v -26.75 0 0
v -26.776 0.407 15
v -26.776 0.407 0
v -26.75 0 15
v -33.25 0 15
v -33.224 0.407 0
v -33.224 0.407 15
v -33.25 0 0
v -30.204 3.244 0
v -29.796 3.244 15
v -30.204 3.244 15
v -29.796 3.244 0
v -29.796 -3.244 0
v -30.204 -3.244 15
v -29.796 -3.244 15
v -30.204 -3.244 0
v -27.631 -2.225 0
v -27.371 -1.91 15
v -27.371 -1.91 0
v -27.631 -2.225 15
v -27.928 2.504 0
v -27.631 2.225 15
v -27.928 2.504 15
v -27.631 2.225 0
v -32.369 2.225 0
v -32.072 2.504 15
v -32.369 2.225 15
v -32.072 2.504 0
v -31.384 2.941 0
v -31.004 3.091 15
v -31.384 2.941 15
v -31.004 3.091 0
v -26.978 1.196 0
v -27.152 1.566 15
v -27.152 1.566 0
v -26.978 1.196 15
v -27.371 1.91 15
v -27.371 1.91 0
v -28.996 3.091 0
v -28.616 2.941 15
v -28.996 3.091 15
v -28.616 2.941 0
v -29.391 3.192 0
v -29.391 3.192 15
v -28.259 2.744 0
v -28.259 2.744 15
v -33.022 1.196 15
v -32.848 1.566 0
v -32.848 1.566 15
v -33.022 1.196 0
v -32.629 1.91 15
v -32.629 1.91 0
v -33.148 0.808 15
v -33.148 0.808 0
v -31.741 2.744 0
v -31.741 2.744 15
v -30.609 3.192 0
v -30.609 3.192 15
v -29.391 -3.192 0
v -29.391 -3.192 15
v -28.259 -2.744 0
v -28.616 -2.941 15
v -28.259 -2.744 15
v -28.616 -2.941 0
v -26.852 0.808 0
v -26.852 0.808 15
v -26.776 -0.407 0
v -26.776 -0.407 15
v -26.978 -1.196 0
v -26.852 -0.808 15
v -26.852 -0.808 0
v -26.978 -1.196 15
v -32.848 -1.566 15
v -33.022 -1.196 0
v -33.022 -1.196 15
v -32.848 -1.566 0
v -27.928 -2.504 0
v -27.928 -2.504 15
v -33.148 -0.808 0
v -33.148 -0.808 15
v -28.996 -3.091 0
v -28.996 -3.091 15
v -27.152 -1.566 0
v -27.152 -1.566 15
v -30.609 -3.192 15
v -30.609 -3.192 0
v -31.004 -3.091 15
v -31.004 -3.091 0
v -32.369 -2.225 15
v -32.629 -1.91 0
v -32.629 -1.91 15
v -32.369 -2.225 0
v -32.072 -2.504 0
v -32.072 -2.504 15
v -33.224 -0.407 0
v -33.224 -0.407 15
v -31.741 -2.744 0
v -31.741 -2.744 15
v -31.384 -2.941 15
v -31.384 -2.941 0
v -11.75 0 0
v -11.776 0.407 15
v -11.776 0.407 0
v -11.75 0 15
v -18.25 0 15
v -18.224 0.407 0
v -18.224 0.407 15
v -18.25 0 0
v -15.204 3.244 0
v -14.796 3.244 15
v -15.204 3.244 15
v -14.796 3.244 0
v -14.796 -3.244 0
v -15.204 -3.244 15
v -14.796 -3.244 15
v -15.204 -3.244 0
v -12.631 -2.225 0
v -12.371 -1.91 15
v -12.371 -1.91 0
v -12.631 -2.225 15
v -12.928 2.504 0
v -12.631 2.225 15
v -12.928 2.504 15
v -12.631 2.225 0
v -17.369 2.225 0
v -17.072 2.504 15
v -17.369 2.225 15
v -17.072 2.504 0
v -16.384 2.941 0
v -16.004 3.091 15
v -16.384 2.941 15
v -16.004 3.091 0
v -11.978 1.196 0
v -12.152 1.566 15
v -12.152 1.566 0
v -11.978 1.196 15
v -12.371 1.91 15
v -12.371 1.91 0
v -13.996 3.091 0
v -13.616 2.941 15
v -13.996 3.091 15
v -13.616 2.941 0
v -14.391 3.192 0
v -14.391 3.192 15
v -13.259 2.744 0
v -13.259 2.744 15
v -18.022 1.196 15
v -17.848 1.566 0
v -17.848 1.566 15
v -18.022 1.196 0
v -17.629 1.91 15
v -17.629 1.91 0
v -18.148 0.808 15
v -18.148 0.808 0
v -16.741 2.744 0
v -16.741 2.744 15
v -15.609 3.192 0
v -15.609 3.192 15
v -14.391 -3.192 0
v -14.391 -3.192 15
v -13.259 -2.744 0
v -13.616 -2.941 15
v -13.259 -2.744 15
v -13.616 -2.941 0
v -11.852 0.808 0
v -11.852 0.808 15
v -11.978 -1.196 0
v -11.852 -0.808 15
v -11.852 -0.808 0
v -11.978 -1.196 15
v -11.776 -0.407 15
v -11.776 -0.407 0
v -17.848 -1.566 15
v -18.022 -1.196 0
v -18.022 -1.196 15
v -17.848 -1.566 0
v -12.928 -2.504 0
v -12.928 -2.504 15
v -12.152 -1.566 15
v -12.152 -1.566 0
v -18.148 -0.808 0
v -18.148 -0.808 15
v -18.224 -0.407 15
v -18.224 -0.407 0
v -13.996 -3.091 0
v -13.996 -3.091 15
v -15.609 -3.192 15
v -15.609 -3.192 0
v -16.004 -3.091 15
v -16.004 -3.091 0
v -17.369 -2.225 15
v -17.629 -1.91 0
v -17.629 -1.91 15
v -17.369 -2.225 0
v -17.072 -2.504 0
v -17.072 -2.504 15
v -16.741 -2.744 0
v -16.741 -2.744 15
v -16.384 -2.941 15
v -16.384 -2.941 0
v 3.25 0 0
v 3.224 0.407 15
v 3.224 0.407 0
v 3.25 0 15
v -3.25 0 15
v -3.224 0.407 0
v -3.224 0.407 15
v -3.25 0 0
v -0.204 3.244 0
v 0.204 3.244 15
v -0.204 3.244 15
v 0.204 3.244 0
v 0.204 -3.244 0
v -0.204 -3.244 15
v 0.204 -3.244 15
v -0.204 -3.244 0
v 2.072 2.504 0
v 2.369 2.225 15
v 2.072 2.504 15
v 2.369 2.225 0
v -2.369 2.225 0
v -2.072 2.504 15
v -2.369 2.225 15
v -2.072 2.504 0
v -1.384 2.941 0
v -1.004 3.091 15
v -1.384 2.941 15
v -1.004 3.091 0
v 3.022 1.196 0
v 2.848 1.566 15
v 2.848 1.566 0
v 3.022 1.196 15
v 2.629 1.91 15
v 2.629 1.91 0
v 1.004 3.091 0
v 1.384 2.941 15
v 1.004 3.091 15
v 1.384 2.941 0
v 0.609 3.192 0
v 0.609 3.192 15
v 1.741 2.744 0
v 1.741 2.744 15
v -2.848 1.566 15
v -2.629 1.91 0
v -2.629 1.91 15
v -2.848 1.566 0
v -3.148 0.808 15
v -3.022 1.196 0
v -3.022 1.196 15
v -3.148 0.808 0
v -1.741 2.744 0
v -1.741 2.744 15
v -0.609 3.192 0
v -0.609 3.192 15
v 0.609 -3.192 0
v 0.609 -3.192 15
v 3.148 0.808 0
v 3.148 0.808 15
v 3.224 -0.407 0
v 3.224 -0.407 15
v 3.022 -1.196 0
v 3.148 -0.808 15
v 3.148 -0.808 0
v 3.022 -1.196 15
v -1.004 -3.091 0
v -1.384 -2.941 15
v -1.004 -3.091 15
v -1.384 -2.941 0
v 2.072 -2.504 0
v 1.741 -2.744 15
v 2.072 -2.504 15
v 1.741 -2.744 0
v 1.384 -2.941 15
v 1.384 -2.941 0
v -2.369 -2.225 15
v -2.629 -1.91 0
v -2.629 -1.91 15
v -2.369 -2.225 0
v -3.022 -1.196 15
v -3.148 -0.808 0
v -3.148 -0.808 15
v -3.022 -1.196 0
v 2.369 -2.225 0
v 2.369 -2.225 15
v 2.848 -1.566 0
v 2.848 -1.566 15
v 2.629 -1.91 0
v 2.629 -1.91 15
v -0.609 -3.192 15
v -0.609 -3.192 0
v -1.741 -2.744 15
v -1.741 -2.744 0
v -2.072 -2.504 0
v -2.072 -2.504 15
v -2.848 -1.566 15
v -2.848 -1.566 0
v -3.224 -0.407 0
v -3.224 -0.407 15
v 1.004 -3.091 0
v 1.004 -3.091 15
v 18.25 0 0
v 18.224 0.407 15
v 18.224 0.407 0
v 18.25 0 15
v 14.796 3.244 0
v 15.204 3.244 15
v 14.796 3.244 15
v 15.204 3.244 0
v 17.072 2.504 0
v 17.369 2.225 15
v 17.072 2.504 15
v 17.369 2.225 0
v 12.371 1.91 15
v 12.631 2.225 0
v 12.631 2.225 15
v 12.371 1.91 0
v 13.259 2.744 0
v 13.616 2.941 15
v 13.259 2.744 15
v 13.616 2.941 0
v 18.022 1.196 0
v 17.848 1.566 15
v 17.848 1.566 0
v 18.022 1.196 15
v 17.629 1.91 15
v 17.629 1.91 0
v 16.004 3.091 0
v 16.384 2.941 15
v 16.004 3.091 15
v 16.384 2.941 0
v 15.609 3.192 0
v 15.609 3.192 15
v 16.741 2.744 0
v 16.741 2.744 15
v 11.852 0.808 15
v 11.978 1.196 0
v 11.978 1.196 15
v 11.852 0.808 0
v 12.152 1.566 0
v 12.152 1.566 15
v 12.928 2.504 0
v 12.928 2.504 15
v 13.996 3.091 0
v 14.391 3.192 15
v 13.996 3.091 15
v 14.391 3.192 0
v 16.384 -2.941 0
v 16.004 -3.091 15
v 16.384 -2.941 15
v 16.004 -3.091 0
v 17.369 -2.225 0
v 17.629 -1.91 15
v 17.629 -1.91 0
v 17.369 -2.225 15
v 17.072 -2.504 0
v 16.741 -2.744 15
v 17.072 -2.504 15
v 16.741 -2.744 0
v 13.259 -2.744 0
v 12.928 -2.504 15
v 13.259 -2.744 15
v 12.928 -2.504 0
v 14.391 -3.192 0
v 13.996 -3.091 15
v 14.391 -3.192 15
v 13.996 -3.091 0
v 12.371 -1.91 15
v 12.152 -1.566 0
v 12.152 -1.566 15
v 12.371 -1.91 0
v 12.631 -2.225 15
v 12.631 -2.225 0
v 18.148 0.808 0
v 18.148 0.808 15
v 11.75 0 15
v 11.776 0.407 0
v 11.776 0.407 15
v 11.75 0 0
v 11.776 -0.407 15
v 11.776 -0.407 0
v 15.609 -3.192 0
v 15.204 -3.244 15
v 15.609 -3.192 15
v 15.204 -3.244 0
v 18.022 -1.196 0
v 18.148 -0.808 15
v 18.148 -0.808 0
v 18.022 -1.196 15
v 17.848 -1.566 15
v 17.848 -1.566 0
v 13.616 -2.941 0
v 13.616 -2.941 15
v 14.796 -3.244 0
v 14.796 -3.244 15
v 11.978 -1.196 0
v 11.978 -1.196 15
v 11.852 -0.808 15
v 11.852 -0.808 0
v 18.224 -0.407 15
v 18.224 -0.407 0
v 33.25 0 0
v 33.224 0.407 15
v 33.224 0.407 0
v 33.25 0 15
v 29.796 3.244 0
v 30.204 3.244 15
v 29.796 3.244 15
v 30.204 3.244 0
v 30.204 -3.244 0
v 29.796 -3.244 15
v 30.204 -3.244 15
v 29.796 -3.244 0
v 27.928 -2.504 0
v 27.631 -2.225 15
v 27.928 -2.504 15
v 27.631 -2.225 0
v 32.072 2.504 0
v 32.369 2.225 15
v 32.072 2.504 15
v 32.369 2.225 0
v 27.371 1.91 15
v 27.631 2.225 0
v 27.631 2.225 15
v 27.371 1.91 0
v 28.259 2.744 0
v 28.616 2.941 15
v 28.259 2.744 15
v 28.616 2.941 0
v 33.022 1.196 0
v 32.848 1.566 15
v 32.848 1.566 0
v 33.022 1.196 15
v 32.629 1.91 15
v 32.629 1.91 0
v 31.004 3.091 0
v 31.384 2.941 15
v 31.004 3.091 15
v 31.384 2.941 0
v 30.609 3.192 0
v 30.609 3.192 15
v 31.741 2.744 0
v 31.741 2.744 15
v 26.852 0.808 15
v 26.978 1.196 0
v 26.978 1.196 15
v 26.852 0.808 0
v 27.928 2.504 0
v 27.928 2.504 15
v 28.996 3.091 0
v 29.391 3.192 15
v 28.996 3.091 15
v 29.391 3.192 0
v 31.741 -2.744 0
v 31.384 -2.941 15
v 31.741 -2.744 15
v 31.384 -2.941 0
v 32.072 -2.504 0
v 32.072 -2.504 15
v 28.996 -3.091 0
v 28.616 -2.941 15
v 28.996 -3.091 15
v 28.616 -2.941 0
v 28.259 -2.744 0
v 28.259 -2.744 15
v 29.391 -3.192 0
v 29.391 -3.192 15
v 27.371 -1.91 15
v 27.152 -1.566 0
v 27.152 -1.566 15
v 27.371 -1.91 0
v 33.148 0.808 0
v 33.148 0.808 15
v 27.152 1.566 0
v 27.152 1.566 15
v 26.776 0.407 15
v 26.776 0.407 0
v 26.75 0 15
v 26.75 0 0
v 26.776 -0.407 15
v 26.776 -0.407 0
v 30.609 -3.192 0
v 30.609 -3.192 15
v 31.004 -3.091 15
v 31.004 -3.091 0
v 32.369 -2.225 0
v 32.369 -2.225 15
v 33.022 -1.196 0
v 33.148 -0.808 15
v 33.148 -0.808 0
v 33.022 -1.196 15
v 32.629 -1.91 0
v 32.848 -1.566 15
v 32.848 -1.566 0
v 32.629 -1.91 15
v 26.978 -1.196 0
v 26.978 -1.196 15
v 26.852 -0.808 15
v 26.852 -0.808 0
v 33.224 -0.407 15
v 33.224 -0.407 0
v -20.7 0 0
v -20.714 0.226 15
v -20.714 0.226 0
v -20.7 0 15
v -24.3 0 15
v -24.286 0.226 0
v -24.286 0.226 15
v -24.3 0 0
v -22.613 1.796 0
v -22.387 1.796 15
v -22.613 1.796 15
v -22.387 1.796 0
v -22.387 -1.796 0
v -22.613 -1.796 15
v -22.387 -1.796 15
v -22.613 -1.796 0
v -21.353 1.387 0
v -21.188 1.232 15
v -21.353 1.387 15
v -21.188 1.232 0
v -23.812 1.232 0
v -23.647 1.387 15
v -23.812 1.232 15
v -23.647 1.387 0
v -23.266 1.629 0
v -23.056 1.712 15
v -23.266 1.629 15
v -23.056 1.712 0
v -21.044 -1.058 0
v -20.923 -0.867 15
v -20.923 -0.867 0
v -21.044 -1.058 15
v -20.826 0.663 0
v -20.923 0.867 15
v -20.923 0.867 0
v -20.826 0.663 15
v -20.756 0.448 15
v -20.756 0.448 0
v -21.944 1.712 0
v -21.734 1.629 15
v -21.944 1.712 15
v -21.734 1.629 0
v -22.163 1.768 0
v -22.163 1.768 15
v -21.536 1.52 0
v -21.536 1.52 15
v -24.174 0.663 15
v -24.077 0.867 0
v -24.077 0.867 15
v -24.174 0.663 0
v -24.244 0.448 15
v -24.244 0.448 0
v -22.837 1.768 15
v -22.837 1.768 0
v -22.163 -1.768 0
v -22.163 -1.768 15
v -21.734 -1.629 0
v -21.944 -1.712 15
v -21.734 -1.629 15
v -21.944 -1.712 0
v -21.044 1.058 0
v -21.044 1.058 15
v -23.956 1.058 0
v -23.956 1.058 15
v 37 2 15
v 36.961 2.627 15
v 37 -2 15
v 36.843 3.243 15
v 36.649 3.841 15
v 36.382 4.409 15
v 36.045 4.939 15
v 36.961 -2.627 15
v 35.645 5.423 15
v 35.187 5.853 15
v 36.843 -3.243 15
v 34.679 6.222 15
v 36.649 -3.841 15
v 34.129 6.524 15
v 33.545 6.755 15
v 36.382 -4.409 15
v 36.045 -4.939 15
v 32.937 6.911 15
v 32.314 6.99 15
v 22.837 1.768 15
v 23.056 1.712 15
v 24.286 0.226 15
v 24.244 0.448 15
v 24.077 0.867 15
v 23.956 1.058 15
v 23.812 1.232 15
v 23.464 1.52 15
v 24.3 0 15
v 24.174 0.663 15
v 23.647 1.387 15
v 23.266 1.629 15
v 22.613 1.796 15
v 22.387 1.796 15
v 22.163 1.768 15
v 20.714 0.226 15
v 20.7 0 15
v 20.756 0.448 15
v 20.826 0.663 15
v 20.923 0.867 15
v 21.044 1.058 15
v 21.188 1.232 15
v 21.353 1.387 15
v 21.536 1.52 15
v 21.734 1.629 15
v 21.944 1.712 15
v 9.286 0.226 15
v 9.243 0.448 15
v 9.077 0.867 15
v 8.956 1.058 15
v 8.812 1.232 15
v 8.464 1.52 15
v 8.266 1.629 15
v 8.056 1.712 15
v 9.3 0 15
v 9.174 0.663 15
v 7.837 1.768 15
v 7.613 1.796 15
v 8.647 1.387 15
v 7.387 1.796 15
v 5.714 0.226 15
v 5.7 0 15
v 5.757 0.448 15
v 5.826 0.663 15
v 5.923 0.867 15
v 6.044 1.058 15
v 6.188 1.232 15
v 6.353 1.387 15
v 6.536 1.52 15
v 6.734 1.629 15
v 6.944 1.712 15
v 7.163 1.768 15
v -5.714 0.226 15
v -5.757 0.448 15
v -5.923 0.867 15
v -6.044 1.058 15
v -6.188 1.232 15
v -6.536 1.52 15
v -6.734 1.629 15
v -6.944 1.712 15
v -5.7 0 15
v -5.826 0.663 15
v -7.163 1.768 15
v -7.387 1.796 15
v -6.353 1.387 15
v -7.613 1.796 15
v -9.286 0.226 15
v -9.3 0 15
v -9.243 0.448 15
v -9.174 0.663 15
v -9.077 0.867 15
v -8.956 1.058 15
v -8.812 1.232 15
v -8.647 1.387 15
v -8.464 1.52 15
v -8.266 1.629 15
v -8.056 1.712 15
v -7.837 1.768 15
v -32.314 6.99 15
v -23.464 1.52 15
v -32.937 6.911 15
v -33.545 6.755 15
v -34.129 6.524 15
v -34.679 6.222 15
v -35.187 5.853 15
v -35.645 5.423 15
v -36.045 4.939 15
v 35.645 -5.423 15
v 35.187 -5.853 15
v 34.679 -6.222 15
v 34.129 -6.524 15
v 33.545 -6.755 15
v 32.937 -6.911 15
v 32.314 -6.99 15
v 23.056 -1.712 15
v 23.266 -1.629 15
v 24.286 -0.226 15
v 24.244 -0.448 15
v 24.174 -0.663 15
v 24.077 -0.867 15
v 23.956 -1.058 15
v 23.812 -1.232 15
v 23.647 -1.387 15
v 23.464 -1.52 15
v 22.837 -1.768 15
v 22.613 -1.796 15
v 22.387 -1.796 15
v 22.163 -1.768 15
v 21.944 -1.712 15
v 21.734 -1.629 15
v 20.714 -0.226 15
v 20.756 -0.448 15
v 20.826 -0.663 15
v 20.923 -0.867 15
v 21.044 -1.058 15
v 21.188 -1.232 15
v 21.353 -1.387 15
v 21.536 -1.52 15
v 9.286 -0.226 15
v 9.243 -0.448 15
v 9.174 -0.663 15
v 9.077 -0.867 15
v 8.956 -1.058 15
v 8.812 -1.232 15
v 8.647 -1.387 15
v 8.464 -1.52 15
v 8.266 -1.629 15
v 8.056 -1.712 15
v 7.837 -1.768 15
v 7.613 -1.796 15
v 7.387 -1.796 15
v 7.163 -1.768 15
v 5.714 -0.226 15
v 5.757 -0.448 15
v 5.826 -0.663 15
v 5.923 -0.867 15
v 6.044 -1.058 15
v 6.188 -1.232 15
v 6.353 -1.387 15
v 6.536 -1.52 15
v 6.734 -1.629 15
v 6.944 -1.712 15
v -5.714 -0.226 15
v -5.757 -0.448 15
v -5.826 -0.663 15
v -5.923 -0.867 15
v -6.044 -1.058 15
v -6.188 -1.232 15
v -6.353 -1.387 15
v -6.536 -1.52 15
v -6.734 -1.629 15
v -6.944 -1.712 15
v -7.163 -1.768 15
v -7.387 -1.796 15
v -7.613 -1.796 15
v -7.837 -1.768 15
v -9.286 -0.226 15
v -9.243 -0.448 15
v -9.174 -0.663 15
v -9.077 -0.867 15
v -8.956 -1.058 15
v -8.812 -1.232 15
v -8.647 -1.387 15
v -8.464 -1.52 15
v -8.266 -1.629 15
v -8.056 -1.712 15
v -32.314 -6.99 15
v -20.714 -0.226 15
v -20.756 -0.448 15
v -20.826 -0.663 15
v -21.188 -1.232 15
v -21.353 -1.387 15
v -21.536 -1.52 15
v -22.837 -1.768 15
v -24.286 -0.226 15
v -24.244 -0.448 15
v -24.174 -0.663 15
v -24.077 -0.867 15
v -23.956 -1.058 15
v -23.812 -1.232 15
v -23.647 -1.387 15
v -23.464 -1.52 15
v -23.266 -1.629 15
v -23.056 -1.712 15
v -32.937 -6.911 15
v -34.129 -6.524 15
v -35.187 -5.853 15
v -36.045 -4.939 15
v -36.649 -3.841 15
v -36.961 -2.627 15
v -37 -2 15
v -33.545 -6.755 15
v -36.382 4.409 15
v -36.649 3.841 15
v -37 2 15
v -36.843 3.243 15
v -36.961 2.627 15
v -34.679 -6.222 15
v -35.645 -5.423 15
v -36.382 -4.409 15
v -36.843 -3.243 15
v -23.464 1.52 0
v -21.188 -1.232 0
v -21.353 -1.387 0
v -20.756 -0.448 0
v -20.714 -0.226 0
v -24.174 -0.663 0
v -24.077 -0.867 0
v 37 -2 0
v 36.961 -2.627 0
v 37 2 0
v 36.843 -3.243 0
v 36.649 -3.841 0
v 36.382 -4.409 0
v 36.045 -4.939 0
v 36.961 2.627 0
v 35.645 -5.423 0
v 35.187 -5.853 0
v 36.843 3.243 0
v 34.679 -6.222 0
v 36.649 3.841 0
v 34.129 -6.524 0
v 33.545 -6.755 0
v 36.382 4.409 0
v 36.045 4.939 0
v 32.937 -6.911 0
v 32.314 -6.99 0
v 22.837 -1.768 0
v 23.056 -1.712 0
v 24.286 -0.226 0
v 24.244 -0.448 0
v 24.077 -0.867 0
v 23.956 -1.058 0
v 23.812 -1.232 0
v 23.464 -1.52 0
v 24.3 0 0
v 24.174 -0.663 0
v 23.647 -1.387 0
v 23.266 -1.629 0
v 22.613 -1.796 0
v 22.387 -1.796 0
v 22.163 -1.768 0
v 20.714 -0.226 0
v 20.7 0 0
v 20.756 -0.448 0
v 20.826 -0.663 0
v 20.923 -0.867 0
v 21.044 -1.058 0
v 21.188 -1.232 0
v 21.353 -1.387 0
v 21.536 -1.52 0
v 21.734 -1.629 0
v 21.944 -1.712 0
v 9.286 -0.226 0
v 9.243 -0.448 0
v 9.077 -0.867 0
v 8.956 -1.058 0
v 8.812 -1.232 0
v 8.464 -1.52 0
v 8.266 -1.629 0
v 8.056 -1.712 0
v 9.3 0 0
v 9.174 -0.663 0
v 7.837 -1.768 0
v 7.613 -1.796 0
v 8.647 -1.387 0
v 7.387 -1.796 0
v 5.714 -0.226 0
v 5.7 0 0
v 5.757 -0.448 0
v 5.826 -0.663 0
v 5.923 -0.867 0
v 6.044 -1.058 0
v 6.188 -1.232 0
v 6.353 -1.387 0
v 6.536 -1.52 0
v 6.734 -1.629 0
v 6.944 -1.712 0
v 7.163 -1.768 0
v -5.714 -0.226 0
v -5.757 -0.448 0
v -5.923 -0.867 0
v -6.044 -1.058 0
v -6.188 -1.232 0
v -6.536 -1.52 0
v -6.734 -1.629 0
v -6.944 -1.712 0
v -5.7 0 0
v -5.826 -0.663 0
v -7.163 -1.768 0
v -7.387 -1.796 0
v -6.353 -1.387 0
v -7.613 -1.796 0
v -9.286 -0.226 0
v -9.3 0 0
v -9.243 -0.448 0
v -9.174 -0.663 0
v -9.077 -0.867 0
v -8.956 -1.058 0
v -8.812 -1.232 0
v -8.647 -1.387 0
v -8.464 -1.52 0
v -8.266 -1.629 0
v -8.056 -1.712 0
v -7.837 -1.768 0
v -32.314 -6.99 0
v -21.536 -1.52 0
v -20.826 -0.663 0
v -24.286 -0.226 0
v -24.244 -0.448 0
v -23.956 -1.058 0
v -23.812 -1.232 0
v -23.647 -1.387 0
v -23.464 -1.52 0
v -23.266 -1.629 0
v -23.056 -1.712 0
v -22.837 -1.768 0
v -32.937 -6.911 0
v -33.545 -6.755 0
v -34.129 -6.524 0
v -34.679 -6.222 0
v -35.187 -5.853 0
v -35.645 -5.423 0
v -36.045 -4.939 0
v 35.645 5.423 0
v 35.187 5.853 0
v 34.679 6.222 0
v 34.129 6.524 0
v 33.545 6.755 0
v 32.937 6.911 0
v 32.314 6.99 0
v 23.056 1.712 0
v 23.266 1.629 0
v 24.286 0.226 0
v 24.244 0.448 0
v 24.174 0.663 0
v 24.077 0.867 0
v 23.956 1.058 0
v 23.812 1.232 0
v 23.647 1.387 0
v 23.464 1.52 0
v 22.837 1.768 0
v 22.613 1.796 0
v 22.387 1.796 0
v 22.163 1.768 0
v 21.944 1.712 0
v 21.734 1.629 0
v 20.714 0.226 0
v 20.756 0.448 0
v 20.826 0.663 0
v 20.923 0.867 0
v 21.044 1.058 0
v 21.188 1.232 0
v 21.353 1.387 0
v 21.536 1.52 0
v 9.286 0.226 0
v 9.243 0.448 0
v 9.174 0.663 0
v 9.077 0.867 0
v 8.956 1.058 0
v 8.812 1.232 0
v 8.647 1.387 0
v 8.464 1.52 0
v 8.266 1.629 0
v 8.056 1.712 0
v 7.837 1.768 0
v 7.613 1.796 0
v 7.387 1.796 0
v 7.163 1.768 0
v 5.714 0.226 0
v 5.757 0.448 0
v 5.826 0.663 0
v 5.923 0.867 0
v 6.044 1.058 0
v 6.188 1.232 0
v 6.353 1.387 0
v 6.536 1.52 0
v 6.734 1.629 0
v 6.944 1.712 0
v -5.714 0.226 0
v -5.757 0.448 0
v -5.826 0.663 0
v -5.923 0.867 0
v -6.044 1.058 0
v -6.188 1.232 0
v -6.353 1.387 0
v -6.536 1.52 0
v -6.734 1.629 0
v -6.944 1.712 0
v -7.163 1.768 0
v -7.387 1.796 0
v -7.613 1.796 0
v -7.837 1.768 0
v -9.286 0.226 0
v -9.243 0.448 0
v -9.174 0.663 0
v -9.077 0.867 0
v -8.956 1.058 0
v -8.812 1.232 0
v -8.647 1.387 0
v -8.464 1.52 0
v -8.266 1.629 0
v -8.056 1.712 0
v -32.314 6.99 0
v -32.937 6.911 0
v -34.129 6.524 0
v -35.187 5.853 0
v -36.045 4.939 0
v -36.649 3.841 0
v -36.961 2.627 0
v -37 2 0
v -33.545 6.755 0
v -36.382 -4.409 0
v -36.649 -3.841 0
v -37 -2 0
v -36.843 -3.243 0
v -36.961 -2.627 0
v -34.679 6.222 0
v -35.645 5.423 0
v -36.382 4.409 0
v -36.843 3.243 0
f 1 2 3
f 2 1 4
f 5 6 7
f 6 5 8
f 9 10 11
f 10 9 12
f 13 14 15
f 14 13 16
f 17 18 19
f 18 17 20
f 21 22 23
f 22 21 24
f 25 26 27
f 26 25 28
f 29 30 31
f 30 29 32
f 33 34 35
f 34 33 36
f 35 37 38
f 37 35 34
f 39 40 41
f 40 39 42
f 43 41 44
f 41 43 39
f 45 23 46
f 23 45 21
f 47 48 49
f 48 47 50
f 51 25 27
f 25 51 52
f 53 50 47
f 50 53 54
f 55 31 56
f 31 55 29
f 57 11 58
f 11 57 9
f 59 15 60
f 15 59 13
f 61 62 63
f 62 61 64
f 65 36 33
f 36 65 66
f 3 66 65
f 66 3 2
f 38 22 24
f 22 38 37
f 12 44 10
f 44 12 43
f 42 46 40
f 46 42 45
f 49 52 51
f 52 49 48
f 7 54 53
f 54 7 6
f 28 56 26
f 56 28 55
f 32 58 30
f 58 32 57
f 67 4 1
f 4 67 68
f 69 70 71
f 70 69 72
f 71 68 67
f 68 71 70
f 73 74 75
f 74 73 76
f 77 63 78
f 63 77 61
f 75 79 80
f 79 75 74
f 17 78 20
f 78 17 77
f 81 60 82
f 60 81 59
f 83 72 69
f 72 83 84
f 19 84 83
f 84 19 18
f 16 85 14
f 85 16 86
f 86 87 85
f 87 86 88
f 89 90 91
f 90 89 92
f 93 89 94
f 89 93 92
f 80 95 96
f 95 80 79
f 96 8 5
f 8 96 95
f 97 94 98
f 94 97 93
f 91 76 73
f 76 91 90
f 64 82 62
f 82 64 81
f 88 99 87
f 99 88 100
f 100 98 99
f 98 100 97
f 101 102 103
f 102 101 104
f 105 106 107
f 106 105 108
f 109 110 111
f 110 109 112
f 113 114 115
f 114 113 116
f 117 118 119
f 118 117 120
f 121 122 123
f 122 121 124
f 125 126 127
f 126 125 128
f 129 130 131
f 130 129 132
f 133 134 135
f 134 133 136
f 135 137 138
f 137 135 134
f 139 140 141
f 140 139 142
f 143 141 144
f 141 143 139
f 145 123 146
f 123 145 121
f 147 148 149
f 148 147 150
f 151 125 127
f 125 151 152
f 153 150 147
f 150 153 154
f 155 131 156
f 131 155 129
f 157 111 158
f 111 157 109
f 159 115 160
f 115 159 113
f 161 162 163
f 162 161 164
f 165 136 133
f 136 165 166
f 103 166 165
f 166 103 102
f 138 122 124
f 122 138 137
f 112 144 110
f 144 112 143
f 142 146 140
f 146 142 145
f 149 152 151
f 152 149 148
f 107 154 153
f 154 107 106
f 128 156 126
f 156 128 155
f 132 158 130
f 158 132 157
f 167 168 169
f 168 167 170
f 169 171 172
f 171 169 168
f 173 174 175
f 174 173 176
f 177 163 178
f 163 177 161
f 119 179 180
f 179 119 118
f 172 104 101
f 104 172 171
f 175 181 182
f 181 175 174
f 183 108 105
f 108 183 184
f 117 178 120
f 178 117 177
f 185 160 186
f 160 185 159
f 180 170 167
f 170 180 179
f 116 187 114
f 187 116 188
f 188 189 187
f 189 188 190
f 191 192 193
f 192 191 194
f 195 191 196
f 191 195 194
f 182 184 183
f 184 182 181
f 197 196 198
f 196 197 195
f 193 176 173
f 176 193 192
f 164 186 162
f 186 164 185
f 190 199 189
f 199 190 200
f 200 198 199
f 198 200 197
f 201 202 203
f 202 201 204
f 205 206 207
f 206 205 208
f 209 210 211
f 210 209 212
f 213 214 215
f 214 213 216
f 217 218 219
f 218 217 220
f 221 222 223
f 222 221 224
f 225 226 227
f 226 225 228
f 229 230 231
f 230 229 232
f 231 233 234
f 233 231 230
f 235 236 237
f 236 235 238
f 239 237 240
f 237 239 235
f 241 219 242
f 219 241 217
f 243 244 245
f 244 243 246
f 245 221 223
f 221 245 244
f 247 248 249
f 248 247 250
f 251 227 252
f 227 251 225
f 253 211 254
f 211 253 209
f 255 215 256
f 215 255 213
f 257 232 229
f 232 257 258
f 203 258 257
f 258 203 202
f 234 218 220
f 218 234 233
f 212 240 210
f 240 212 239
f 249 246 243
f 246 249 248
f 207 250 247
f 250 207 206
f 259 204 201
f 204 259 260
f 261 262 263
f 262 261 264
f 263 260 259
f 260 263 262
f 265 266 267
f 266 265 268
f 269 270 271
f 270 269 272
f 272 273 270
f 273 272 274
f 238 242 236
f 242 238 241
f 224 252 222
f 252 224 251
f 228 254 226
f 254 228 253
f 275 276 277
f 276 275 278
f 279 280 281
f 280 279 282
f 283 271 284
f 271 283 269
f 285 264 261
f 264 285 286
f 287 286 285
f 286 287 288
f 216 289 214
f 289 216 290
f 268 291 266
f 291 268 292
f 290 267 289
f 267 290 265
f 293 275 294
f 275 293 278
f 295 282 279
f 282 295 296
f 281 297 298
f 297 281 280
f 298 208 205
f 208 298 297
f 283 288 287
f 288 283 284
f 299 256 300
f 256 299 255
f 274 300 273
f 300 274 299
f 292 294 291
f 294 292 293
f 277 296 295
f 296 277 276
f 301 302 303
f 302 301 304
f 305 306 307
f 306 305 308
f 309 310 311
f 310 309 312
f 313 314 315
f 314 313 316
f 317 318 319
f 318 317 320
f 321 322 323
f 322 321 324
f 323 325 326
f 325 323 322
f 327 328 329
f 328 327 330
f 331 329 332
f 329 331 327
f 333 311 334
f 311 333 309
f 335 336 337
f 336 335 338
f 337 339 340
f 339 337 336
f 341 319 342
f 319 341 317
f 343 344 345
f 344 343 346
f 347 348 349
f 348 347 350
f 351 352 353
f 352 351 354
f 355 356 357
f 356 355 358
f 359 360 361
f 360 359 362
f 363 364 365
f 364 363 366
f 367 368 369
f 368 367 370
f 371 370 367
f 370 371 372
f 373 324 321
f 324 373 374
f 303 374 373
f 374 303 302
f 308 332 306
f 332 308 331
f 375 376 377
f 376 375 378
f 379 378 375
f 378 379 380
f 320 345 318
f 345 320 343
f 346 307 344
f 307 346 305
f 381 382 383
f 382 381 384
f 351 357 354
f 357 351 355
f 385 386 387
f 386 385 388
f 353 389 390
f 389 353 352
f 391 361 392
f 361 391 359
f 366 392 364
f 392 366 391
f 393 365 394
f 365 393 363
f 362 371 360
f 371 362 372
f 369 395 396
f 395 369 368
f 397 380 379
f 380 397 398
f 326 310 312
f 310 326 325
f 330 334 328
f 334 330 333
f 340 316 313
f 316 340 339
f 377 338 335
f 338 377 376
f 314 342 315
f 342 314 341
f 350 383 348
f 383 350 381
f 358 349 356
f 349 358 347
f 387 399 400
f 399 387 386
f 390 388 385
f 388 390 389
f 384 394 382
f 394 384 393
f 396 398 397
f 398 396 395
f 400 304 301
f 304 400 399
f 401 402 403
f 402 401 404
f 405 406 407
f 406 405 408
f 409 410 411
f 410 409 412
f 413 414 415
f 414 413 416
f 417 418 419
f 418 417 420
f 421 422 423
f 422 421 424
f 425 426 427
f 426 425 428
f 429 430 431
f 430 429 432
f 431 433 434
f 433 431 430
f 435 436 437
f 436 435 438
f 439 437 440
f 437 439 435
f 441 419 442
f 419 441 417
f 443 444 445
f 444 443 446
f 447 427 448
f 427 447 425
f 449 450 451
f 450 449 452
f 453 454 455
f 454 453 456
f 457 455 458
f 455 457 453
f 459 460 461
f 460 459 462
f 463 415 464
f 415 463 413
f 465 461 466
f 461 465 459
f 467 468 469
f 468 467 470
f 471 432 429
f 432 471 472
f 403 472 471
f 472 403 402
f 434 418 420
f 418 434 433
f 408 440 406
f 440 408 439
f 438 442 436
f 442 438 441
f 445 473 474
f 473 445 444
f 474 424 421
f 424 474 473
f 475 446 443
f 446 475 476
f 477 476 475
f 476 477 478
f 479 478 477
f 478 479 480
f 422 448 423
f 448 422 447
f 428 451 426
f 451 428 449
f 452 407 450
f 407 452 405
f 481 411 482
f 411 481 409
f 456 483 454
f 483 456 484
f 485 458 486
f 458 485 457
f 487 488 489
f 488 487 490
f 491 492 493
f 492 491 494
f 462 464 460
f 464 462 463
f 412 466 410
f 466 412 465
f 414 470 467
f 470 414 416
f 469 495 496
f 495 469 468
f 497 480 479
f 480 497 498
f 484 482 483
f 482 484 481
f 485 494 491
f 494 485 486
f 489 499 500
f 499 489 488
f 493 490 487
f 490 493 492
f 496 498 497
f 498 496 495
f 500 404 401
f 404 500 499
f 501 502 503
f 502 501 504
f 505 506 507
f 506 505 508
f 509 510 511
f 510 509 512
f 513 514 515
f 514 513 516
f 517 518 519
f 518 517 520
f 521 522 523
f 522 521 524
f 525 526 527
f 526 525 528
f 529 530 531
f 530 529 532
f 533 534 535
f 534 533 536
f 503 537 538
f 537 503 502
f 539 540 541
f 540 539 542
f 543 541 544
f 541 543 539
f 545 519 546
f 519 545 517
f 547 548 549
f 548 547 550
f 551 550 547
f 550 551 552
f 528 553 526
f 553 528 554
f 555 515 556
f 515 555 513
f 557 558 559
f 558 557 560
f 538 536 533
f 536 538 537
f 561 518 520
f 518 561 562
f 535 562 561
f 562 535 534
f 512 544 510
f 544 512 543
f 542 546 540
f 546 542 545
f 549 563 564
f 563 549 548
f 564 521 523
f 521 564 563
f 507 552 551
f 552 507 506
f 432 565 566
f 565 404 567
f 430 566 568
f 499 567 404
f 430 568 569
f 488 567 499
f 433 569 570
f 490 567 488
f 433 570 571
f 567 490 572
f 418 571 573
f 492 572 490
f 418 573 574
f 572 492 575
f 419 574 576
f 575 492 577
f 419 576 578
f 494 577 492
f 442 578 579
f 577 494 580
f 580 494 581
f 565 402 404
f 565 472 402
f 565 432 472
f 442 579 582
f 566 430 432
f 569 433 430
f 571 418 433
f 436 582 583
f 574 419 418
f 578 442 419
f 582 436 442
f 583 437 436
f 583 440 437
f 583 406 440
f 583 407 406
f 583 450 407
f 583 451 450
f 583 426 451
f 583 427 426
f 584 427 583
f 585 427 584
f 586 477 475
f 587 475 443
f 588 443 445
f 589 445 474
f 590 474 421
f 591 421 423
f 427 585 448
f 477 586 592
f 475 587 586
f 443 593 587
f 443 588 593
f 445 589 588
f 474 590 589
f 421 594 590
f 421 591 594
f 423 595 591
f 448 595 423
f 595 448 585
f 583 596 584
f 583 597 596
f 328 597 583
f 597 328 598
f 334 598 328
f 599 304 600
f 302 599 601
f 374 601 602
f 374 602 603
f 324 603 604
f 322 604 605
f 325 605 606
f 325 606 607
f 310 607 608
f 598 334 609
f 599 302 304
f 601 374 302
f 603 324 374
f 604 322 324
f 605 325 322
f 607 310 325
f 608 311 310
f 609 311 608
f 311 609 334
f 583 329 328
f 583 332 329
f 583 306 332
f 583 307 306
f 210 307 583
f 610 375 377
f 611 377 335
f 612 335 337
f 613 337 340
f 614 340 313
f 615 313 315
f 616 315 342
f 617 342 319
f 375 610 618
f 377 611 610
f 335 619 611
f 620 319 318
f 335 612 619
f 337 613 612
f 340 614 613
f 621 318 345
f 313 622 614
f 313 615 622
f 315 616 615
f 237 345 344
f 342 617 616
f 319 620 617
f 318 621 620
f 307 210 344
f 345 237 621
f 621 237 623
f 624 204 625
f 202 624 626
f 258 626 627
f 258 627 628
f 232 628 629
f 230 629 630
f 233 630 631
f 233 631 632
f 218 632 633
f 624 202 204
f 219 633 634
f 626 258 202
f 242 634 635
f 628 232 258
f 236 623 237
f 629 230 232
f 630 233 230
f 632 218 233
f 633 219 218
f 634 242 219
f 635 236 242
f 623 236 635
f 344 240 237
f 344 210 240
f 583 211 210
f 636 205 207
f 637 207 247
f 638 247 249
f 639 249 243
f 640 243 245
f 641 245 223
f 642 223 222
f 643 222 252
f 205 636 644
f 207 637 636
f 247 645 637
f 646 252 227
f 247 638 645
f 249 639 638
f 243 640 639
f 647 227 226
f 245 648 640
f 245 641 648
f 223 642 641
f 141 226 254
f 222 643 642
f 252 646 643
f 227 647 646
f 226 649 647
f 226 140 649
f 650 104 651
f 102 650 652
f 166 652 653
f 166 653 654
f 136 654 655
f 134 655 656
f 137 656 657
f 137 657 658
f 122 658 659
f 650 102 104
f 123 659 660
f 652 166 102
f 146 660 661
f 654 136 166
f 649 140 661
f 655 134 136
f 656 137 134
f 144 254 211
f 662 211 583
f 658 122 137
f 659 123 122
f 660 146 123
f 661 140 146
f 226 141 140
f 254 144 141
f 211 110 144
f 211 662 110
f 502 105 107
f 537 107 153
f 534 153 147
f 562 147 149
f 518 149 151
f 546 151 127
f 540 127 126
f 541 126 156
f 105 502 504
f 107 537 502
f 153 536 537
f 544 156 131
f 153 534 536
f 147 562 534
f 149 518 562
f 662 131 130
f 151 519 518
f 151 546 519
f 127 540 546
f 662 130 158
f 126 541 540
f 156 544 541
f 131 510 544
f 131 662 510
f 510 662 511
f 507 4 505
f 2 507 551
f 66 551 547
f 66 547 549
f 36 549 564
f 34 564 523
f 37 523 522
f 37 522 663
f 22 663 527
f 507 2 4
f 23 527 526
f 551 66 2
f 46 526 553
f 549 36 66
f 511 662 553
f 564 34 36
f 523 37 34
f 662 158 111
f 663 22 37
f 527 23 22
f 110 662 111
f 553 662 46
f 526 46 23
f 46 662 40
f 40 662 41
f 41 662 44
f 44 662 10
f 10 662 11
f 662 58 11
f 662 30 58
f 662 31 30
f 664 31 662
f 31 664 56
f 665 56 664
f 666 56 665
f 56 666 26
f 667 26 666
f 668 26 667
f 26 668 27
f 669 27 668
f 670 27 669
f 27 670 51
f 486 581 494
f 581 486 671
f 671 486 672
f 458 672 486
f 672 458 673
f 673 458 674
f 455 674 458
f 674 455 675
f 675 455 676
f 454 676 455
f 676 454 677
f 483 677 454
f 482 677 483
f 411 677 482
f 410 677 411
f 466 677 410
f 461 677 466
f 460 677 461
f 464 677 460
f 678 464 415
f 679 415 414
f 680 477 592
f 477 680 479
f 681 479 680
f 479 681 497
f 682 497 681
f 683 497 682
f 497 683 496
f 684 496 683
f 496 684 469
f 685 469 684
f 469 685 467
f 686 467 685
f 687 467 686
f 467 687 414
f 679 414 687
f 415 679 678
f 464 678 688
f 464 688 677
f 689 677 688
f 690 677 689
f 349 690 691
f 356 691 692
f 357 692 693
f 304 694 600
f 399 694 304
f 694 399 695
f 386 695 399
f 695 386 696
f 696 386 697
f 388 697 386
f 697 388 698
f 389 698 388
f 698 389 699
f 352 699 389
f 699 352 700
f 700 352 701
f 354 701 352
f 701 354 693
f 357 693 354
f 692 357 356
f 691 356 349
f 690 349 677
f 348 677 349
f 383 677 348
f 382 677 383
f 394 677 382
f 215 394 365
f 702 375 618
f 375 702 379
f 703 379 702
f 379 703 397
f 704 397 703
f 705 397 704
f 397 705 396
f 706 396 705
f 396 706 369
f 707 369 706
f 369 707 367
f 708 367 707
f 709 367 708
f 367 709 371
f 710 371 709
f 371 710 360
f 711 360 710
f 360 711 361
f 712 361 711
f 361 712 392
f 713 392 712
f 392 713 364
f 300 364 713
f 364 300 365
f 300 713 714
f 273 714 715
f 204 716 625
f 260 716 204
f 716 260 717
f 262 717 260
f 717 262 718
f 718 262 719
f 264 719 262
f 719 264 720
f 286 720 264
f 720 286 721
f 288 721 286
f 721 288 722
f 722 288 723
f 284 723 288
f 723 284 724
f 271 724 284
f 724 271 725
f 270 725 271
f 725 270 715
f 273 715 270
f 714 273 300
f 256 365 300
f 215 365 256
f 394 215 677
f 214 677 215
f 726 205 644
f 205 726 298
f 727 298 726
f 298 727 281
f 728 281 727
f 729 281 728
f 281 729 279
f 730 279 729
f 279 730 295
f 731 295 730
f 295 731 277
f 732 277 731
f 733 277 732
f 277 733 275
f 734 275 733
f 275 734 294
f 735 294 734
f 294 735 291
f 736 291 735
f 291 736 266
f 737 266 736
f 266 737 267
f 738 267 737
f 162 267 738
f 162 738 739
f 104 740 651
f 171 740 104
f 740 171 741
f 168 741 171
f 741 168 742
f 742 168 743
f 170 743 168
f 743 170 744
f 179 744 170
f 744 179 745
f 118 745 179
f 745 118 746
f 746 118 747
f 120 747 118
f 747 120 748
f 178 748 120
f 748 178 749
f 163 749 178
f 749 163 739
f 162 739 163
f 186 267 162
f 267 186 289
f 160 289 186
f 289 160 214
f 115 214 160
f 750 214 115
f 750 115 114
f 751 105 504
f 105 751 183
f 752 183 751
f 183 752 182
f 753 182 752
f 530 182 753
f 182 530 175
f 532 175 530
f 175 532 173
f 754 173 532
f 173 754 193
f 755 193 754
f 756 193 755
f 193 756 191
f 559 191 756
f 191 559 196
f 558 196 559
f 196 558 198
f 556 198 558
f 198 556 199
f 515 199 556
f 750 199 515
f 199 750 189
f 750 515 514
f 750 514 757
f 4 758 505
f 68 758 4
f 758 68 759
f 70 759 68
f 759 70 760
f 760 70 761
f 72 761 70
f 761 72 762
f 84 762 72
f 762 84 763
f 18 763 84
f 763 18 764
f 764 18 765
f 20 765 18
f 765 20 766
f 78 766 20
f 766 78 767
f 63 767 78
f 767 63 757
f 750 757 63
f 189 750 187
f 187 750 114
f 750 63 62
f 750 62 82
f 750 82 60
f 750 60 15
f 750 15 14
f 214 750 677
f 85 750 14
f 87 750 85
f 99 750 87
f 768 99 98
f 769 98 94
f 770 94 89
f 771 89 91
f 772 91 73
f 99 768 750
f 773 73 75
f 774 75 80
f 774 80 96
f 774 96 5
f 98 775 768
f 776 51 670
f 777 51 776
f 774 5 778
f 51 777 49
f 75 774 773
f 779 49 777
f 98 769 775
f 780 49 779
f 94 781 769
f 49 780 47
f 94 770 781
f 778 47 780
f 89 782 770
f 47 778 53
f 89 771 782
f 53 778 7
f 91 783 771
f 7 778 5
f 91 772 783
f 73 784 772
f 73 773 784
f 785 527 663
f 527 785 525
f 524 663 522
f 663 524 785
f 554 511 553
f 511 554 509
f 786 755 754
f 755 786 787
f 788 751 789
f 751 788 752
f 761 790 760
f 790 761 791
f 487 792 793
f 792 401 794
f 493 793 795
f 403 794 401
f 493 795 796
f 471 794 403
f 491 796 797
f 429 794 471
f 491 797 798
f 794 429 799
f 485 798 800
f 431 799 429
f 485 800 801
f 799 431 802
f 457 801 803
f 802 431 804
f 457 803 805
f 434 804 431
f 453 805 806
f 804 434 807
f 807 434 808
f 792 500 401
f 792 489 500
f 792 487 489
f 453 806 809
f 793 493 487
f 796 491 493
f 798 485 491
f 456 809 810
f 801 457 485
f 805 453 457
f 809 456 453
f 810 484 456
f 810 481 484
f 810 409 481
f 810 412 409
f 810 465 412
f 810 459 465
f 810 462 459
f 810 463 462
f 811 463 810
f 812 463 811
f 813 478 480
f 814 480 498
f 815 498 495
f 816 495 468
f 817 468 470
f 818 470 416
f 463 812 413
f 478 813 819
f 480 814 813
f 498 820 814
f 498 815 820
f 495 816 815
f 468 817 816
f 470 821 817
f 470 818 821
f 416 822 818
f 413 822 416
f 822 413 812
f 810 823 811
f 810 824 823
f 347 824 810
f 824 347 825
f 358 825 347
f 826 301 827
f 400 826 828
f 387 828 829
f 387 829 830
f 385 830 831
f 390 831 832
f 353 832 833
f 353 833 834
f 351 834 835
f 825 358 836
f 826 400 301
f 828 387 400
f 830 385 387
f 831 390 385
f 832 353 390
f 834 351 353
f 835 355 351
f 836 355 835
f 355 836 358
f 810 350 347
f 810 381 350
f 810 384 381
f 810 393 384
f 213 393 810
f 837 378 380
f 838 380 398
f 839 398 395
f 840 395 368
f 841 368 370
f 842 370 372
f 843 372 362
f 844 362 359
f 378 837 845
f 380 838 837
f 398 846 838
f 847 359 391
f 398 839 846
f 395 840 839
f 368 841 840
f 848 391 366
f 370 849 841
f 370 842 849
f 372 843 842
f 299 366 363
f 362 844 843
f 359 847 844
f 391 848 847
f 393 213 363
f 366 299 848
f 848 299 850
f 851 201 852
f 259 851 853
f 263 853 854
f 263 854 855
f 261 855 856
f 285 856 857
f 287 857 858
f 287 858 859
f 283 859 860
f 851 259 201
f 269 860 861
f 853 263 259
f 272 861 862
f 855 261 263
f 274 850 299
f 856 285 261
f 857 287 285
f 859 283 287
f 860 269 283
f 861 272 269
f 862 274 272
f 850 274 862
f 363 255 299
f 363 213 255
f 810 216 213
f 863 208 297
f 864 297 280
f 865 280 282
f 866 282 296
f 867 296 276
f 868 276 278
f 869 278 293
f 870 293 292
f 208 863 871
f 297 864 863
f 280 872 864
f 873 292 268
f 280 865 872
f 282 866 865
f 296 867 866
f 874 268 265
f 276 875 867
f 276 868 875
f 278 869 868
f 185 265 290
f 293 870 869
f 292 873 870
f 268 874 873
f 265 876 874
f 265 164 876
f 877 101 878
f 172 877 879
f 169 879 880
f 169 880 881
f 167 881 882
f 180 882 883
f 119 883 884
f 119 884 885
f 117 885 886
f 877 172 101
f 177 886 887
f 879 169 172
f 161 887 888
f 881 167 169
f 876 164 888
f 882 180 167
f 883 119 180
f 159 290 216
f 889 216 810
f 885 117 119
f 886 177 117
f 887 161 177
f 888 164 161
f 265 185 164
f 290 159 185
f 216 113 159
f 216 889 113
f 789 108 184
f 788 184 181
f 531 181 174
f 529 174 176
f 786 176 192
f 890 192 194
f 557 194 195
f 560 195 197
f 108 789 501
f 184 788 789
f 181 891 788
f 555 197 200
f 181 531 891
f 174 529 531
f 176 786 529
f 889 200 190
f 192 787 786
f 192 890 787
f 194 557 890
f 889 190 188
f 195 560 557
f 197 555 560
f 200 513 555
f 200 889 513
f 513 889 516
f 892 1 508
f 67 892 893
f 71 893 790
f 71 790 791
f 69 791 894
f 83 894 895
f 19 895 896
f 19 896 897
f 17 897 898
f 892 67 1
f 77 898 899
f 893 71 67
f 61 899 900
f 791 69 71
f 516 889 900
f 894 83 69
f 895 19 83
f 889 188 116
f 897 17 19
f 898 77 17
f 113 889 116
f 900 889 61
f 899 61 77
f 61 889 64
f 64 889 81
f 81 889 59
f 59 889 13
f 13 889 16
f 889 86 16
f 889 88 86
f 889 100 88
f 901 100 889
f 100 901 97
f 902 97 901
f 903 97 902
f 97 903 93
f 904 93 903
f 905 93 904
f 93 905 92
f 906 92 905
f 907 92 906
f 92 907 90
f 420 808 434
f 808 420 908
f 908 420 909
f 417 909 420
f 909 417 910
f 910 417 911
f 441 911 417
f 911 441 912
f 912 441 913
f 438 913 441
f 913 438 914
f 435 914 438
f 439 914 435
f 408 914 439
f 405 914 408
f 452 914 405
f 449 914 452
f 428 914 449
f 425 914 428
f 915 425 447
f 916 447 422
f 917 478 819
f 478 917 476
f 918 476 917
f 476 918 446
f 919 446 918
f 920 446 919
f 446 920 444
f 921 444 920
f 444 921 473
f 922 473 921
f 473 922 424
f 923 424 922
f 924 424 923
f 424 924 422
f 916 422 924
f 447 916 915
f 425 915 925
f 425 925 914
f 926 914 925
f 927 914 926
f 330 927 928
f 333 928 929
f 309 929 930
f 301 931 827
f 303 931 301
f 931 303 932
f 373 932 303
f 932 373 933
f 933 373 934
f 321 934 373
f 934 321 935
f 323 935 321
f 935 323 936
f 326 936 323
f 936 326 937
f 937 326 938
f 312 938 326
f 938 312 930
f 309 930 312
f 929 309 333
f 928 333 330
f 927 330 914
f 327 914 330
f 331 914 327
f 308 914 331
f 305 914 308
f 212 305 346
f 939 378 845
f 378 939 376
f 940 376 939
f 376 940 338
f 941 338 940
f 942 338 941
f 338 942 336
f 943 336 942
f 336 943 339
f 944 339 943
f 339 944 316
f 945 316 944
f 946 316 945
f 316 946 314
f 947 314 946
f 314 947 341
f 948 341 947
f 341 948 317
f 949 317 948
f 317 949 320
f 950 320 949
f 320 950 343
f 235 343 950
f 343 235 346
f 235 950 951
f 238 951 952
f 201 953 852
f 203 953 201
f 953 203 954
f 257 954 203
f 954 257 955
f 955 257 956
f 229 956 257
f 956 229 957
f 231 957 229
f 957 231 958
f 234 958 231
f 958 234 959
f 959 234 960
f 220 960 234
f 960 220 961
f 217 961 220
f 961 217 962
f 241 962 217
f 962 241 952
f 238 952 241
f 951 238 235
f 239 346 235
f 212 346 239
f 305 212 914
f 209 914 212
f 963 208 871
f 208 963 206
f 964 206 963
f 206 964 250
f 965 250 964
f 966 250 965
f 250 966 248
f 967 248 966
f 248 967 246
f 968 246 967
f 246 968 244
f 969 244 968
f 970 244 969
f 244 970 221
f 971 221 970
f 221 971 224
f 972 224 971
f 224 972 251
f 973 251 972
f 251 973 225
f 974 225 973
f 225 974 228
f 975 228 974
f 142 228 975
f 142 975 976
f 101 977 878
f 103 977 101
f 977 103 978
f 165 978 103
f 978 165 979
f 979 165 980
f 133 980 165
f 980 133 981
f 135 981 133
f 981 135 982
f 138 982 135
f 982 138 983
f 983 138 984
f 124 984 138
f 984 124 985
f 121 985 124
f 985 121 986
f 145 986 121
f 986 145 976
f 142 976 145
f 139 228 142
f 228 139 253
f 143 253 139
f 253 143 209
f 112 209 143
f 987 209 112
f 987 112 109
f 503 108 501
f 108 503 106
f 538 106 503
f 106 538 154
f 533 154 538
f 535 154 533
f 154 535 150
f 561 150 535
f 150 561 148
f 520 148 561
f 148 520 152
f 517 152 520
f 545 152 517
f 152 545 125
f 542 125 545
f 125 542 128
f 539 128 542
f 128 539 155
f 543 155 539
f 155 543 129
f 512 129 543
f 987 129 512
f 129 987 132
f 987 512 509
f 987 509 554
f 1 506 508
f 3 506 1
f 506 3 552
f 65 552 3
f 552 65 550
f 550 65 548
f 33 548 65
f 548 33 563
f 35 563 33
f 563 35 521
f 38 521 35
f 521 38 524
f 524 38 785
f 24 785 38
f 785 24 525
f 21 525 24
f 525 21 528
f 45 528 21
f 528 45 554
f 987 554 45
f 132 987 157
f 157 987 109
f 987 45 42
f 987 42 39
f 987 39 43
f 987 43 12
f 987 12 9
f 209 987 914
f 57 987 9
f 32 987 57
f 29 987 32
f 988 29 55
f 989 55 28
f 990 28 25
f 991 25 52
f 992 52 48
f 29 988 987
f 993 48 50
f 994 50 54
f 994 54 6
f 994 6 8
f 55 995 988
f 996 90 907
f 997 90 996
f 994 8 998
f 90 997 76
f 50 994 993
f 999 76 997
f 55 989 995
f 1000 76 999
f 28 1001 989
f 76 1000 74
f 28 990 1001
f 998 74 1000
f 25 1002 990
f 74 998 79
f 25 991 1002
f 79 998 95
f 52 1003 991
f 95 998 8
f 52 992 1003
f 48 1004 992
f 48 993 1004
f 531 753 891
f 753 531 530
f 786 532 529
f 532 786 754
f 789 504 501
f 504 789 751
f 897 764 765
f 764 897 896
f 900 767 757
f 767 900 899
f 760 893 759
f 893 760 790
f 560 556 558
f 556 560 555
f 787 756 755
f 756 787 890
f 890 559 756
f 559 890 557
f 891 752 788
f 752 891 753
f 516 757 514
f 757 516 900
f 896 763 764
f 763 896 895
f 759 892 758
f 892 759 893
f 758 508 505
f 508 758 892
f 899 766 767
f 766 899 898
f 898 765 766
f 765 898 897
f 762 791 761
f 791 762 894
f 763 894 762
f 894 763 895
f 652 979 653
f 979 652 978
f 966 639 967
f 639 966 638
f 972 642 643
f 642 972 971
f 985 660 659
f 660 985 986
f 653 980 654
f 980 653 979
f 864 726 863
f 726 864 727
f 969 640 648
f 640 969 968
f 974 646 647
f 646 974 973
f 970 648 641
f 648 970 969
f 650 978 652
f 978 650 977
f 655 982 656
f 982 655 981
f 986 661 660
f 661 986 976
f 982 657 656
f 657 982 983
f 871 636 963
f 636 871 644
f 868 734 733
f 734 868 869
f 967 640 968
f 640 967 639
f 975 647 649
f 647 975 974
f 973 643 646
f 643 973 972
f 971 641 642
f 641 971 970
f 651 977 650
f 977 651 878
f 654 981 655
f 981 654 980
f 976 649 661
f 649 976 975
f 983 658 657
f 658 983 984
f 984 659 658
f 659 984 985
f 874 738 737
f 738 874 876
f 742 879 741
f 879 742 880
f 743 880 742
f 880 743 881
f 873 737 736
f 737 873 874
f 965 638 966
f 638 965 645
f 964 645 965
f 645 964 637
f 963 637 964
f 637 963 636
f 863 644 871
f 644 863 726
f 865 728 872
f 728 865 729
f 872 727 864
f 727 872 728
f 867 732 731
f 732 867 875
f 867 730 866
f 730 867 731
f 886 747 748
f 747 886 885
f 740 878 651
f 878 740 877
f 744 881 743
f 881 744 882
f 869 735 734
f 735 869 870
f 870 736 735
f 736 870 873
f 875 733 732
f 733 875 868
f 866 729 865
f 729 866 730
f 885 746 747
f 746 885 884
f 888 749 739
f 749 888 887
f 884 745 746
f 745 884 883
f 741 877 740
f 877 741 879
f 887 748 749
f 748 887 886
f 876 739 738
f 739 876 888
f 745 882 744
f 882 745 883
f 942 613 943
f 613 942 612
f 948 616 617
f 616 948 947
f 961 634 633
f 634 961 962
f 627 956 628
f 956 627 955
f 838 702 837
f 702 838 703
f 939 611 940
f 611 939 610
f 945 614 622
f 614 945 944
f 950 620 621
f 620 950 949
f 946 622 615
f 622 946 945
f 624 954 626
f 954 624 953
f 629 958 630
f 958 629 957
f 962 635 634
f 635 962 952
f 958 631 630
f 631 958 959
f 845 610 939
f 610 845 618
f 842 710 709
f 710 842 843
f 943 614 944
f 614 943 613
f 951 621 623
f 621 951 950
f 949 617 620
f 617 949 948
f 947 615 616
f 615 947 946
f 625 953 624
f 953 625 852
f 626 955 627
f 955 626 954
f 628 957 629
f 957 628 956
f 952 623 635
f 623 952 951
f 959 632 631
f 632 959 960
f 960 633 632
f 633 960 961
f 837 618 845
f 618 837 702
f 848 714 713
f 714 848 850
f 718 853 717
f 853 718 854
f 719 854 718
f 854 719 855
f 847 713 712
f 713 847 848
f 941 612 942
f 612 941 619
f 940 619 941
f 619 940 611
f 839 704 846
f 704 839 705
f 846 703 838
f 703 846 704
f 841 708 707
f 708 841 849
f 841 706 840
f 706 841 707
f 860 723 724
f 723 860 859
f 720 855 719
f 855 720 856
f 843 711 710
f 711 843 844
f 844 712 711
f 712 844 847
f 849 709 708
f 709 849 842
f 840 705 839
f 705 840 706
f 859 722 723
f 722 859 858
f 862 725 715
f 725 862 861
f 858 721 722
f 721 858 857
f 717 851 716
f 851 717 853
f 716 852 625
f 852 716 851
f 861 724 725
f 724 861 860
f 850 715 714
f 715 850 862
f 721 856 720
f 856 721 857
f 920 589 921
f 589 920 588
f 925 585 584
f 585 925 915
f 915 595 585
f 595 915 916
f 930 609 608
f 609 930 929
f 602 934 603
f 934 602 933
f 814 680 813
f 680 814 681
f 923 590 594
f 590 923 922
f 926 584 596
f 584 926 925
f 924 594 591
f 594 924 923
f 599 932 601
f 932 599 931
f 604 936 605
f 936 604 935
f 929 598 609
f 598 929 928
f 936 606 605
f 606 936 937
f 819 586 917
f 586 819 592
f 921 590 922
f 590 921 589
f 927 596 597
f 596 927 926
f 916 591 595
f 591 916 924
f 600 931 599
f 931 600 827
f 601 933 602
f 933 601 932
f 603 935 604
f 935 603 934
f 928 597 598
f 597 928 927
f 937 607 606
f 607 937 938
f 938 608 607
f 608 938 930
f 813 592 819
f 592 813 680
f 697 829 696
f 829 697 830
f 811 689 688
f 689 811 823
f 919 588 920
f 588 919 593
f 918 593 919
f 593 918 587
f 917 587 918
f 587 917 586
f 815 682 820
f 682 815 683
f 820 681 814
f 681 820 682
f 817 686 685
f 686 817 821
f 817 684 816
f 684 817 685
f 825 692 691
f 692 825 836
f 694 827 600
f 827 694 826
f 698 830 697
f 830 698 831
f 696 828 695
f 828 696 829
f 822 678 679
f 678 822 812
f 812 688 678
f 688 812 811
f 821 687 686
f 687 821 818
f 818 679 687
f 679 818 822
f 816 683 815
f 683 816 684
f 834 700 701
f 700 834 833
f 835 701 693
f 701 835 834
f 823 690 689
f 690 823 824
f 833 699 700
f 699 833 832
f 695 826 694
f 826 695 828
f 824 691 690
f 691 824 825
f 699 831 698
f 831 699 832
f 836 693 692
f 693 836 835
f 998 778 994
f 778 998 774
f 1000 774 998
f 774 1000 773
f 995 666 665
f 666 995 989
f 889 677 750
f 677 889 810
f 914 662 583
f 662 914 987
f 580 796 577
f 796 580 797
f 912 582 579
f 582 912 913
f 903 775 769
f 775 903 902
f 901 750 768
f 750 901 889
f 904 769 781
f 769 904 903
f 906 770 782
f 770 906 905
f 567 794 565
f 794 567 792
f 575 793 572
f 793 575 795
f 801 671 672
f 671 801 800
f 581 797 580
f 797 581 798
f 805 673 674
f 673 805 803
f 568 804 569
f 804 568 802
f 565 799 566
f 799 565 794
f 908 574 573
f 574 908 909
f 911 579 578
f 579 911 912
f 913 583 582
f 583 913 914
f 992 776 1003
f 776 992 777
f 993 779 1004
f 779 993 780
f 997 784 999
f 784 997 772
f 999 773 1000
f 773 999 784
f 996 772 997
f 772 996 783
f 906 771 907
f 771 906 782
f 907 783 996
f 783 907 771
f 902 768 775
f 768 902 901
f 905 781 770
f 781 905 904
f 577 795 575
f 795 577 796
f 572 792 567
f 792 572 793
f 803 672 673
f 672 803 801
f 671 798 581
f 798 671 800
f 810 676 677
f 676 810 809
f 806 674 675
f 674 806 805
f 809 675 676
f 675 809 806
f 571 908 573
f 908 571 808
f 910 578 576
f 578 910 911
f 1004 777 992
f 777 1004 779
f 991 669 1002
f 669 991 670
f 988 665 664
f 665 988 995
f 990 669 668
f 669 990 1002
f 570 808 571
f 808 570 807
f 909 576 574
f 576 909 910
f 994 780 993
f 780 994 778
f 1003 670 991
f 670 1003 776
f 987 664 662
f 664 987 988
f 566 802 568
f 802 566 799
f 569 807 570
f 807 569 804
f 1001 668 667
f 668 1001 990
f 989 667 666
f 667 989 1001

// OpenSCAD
$fn = 50;


difference() {
	union() {
		hull() {
			translate(v = [-32.0000000000, 2.0000000000, 0]) {
				cylinder(h = 15, r = 5);
			}
			translate(v = [32.0000000000, 2.0000000000, 0]) {
				cylinder(h = 15, r = 5);
			}
			translate(v = [-32.0000000000, -2.0000000000, 0]) {
				cylinder(h = 15, r = 5);
			}
			translate(v = [32.0000000000, -2.0000000000, 0]) {
				cylinder(h = 15, r = 5);
			}
		}
	}
	union() {
		translate(v = [-30.0000000000, 0.0000000000, 0]) {
			translate(v = [0, 0, -100]) {
				cylinder(h = 200, r = 3.2500000000);
			}
		}
		translate(v = [-15.0000000000, 0.0000000000, 0]) {
			translate(v = [0, 0, -100]) {
				cylinder(h = 200, r = 3.2500000000);
			}
		}
		translate(v = [0, 0, -100]) {
			cylinder(h = 200, r = 3.2500000000);
		}
		translate(v = [15.0000000000, 0.0000000000, 0]) {
			translate(v = [0, 0, -100]) {
				cylinder(h = 200, r = 3.2500000000);
			}
		}
		translate(v = [30.0000000000, 0.0000000000, 0]) {
			translate(v = [0, 0, -100]) {
				cylinder(h = 200, r = 3.2500000000);
			}
		}
		translate(v = [-30.0000000000, 0.0000000000, 0]) {
			translate(v = [0, 0, -100]) {
				cylinder(h = 200, r = 1.8000000000);
			}
		}
		translate(v = [-22.5000000000, 0.0000000000, 0]) {
			translate(v = [0, 0, -100]) {
				cylinder(h = 200, r = 1.8000000000);
			}
		}
		translate(v = [-15.0000000000, 0.0000000000, 0]) {
			translate(v = [0, 0, -100]) {
				cylinder(h = 200, r = 1.8000000000);
			}
		}
		translate(v = [-7.5000000000, 0.0000000000, 0]) {
			translate(v = [0, 0, -100]) {
				cylinder(h = 200, r = 1.8000000000);
			}
		}
		translate(v = [0, 0, -100]) {
			cylinder(h = 200, r = 1.8000000000);
		}
		translate(v = [7.5000000000, 0.0000000000, 0]) {
			translate(v = [0, 0, -100]) {
				cylinder(h = 200, r = 1.8000000000);
			}
		}
		translate(v = [15.0000000000, 0.0000000000, 0]) {
			translate(v = [0, 0, -100]) {
				cylinder(h = 200, r = 1.8000000000);
			}
		}
		translate(v = [22.5000000000, 0.0000000000, 0]) {
			translate(v = [0, 0, -100]) {
				cylinder(h = 200, r = 1.8000000000);
			}
		}
		translate(v = [30.0000000000, 0.0000000000, 0]) {
			translate(v = [0, 0, -100]) {
				cylinder(h = 200, r = 1.8000000000);
			}
		}
	}
}
